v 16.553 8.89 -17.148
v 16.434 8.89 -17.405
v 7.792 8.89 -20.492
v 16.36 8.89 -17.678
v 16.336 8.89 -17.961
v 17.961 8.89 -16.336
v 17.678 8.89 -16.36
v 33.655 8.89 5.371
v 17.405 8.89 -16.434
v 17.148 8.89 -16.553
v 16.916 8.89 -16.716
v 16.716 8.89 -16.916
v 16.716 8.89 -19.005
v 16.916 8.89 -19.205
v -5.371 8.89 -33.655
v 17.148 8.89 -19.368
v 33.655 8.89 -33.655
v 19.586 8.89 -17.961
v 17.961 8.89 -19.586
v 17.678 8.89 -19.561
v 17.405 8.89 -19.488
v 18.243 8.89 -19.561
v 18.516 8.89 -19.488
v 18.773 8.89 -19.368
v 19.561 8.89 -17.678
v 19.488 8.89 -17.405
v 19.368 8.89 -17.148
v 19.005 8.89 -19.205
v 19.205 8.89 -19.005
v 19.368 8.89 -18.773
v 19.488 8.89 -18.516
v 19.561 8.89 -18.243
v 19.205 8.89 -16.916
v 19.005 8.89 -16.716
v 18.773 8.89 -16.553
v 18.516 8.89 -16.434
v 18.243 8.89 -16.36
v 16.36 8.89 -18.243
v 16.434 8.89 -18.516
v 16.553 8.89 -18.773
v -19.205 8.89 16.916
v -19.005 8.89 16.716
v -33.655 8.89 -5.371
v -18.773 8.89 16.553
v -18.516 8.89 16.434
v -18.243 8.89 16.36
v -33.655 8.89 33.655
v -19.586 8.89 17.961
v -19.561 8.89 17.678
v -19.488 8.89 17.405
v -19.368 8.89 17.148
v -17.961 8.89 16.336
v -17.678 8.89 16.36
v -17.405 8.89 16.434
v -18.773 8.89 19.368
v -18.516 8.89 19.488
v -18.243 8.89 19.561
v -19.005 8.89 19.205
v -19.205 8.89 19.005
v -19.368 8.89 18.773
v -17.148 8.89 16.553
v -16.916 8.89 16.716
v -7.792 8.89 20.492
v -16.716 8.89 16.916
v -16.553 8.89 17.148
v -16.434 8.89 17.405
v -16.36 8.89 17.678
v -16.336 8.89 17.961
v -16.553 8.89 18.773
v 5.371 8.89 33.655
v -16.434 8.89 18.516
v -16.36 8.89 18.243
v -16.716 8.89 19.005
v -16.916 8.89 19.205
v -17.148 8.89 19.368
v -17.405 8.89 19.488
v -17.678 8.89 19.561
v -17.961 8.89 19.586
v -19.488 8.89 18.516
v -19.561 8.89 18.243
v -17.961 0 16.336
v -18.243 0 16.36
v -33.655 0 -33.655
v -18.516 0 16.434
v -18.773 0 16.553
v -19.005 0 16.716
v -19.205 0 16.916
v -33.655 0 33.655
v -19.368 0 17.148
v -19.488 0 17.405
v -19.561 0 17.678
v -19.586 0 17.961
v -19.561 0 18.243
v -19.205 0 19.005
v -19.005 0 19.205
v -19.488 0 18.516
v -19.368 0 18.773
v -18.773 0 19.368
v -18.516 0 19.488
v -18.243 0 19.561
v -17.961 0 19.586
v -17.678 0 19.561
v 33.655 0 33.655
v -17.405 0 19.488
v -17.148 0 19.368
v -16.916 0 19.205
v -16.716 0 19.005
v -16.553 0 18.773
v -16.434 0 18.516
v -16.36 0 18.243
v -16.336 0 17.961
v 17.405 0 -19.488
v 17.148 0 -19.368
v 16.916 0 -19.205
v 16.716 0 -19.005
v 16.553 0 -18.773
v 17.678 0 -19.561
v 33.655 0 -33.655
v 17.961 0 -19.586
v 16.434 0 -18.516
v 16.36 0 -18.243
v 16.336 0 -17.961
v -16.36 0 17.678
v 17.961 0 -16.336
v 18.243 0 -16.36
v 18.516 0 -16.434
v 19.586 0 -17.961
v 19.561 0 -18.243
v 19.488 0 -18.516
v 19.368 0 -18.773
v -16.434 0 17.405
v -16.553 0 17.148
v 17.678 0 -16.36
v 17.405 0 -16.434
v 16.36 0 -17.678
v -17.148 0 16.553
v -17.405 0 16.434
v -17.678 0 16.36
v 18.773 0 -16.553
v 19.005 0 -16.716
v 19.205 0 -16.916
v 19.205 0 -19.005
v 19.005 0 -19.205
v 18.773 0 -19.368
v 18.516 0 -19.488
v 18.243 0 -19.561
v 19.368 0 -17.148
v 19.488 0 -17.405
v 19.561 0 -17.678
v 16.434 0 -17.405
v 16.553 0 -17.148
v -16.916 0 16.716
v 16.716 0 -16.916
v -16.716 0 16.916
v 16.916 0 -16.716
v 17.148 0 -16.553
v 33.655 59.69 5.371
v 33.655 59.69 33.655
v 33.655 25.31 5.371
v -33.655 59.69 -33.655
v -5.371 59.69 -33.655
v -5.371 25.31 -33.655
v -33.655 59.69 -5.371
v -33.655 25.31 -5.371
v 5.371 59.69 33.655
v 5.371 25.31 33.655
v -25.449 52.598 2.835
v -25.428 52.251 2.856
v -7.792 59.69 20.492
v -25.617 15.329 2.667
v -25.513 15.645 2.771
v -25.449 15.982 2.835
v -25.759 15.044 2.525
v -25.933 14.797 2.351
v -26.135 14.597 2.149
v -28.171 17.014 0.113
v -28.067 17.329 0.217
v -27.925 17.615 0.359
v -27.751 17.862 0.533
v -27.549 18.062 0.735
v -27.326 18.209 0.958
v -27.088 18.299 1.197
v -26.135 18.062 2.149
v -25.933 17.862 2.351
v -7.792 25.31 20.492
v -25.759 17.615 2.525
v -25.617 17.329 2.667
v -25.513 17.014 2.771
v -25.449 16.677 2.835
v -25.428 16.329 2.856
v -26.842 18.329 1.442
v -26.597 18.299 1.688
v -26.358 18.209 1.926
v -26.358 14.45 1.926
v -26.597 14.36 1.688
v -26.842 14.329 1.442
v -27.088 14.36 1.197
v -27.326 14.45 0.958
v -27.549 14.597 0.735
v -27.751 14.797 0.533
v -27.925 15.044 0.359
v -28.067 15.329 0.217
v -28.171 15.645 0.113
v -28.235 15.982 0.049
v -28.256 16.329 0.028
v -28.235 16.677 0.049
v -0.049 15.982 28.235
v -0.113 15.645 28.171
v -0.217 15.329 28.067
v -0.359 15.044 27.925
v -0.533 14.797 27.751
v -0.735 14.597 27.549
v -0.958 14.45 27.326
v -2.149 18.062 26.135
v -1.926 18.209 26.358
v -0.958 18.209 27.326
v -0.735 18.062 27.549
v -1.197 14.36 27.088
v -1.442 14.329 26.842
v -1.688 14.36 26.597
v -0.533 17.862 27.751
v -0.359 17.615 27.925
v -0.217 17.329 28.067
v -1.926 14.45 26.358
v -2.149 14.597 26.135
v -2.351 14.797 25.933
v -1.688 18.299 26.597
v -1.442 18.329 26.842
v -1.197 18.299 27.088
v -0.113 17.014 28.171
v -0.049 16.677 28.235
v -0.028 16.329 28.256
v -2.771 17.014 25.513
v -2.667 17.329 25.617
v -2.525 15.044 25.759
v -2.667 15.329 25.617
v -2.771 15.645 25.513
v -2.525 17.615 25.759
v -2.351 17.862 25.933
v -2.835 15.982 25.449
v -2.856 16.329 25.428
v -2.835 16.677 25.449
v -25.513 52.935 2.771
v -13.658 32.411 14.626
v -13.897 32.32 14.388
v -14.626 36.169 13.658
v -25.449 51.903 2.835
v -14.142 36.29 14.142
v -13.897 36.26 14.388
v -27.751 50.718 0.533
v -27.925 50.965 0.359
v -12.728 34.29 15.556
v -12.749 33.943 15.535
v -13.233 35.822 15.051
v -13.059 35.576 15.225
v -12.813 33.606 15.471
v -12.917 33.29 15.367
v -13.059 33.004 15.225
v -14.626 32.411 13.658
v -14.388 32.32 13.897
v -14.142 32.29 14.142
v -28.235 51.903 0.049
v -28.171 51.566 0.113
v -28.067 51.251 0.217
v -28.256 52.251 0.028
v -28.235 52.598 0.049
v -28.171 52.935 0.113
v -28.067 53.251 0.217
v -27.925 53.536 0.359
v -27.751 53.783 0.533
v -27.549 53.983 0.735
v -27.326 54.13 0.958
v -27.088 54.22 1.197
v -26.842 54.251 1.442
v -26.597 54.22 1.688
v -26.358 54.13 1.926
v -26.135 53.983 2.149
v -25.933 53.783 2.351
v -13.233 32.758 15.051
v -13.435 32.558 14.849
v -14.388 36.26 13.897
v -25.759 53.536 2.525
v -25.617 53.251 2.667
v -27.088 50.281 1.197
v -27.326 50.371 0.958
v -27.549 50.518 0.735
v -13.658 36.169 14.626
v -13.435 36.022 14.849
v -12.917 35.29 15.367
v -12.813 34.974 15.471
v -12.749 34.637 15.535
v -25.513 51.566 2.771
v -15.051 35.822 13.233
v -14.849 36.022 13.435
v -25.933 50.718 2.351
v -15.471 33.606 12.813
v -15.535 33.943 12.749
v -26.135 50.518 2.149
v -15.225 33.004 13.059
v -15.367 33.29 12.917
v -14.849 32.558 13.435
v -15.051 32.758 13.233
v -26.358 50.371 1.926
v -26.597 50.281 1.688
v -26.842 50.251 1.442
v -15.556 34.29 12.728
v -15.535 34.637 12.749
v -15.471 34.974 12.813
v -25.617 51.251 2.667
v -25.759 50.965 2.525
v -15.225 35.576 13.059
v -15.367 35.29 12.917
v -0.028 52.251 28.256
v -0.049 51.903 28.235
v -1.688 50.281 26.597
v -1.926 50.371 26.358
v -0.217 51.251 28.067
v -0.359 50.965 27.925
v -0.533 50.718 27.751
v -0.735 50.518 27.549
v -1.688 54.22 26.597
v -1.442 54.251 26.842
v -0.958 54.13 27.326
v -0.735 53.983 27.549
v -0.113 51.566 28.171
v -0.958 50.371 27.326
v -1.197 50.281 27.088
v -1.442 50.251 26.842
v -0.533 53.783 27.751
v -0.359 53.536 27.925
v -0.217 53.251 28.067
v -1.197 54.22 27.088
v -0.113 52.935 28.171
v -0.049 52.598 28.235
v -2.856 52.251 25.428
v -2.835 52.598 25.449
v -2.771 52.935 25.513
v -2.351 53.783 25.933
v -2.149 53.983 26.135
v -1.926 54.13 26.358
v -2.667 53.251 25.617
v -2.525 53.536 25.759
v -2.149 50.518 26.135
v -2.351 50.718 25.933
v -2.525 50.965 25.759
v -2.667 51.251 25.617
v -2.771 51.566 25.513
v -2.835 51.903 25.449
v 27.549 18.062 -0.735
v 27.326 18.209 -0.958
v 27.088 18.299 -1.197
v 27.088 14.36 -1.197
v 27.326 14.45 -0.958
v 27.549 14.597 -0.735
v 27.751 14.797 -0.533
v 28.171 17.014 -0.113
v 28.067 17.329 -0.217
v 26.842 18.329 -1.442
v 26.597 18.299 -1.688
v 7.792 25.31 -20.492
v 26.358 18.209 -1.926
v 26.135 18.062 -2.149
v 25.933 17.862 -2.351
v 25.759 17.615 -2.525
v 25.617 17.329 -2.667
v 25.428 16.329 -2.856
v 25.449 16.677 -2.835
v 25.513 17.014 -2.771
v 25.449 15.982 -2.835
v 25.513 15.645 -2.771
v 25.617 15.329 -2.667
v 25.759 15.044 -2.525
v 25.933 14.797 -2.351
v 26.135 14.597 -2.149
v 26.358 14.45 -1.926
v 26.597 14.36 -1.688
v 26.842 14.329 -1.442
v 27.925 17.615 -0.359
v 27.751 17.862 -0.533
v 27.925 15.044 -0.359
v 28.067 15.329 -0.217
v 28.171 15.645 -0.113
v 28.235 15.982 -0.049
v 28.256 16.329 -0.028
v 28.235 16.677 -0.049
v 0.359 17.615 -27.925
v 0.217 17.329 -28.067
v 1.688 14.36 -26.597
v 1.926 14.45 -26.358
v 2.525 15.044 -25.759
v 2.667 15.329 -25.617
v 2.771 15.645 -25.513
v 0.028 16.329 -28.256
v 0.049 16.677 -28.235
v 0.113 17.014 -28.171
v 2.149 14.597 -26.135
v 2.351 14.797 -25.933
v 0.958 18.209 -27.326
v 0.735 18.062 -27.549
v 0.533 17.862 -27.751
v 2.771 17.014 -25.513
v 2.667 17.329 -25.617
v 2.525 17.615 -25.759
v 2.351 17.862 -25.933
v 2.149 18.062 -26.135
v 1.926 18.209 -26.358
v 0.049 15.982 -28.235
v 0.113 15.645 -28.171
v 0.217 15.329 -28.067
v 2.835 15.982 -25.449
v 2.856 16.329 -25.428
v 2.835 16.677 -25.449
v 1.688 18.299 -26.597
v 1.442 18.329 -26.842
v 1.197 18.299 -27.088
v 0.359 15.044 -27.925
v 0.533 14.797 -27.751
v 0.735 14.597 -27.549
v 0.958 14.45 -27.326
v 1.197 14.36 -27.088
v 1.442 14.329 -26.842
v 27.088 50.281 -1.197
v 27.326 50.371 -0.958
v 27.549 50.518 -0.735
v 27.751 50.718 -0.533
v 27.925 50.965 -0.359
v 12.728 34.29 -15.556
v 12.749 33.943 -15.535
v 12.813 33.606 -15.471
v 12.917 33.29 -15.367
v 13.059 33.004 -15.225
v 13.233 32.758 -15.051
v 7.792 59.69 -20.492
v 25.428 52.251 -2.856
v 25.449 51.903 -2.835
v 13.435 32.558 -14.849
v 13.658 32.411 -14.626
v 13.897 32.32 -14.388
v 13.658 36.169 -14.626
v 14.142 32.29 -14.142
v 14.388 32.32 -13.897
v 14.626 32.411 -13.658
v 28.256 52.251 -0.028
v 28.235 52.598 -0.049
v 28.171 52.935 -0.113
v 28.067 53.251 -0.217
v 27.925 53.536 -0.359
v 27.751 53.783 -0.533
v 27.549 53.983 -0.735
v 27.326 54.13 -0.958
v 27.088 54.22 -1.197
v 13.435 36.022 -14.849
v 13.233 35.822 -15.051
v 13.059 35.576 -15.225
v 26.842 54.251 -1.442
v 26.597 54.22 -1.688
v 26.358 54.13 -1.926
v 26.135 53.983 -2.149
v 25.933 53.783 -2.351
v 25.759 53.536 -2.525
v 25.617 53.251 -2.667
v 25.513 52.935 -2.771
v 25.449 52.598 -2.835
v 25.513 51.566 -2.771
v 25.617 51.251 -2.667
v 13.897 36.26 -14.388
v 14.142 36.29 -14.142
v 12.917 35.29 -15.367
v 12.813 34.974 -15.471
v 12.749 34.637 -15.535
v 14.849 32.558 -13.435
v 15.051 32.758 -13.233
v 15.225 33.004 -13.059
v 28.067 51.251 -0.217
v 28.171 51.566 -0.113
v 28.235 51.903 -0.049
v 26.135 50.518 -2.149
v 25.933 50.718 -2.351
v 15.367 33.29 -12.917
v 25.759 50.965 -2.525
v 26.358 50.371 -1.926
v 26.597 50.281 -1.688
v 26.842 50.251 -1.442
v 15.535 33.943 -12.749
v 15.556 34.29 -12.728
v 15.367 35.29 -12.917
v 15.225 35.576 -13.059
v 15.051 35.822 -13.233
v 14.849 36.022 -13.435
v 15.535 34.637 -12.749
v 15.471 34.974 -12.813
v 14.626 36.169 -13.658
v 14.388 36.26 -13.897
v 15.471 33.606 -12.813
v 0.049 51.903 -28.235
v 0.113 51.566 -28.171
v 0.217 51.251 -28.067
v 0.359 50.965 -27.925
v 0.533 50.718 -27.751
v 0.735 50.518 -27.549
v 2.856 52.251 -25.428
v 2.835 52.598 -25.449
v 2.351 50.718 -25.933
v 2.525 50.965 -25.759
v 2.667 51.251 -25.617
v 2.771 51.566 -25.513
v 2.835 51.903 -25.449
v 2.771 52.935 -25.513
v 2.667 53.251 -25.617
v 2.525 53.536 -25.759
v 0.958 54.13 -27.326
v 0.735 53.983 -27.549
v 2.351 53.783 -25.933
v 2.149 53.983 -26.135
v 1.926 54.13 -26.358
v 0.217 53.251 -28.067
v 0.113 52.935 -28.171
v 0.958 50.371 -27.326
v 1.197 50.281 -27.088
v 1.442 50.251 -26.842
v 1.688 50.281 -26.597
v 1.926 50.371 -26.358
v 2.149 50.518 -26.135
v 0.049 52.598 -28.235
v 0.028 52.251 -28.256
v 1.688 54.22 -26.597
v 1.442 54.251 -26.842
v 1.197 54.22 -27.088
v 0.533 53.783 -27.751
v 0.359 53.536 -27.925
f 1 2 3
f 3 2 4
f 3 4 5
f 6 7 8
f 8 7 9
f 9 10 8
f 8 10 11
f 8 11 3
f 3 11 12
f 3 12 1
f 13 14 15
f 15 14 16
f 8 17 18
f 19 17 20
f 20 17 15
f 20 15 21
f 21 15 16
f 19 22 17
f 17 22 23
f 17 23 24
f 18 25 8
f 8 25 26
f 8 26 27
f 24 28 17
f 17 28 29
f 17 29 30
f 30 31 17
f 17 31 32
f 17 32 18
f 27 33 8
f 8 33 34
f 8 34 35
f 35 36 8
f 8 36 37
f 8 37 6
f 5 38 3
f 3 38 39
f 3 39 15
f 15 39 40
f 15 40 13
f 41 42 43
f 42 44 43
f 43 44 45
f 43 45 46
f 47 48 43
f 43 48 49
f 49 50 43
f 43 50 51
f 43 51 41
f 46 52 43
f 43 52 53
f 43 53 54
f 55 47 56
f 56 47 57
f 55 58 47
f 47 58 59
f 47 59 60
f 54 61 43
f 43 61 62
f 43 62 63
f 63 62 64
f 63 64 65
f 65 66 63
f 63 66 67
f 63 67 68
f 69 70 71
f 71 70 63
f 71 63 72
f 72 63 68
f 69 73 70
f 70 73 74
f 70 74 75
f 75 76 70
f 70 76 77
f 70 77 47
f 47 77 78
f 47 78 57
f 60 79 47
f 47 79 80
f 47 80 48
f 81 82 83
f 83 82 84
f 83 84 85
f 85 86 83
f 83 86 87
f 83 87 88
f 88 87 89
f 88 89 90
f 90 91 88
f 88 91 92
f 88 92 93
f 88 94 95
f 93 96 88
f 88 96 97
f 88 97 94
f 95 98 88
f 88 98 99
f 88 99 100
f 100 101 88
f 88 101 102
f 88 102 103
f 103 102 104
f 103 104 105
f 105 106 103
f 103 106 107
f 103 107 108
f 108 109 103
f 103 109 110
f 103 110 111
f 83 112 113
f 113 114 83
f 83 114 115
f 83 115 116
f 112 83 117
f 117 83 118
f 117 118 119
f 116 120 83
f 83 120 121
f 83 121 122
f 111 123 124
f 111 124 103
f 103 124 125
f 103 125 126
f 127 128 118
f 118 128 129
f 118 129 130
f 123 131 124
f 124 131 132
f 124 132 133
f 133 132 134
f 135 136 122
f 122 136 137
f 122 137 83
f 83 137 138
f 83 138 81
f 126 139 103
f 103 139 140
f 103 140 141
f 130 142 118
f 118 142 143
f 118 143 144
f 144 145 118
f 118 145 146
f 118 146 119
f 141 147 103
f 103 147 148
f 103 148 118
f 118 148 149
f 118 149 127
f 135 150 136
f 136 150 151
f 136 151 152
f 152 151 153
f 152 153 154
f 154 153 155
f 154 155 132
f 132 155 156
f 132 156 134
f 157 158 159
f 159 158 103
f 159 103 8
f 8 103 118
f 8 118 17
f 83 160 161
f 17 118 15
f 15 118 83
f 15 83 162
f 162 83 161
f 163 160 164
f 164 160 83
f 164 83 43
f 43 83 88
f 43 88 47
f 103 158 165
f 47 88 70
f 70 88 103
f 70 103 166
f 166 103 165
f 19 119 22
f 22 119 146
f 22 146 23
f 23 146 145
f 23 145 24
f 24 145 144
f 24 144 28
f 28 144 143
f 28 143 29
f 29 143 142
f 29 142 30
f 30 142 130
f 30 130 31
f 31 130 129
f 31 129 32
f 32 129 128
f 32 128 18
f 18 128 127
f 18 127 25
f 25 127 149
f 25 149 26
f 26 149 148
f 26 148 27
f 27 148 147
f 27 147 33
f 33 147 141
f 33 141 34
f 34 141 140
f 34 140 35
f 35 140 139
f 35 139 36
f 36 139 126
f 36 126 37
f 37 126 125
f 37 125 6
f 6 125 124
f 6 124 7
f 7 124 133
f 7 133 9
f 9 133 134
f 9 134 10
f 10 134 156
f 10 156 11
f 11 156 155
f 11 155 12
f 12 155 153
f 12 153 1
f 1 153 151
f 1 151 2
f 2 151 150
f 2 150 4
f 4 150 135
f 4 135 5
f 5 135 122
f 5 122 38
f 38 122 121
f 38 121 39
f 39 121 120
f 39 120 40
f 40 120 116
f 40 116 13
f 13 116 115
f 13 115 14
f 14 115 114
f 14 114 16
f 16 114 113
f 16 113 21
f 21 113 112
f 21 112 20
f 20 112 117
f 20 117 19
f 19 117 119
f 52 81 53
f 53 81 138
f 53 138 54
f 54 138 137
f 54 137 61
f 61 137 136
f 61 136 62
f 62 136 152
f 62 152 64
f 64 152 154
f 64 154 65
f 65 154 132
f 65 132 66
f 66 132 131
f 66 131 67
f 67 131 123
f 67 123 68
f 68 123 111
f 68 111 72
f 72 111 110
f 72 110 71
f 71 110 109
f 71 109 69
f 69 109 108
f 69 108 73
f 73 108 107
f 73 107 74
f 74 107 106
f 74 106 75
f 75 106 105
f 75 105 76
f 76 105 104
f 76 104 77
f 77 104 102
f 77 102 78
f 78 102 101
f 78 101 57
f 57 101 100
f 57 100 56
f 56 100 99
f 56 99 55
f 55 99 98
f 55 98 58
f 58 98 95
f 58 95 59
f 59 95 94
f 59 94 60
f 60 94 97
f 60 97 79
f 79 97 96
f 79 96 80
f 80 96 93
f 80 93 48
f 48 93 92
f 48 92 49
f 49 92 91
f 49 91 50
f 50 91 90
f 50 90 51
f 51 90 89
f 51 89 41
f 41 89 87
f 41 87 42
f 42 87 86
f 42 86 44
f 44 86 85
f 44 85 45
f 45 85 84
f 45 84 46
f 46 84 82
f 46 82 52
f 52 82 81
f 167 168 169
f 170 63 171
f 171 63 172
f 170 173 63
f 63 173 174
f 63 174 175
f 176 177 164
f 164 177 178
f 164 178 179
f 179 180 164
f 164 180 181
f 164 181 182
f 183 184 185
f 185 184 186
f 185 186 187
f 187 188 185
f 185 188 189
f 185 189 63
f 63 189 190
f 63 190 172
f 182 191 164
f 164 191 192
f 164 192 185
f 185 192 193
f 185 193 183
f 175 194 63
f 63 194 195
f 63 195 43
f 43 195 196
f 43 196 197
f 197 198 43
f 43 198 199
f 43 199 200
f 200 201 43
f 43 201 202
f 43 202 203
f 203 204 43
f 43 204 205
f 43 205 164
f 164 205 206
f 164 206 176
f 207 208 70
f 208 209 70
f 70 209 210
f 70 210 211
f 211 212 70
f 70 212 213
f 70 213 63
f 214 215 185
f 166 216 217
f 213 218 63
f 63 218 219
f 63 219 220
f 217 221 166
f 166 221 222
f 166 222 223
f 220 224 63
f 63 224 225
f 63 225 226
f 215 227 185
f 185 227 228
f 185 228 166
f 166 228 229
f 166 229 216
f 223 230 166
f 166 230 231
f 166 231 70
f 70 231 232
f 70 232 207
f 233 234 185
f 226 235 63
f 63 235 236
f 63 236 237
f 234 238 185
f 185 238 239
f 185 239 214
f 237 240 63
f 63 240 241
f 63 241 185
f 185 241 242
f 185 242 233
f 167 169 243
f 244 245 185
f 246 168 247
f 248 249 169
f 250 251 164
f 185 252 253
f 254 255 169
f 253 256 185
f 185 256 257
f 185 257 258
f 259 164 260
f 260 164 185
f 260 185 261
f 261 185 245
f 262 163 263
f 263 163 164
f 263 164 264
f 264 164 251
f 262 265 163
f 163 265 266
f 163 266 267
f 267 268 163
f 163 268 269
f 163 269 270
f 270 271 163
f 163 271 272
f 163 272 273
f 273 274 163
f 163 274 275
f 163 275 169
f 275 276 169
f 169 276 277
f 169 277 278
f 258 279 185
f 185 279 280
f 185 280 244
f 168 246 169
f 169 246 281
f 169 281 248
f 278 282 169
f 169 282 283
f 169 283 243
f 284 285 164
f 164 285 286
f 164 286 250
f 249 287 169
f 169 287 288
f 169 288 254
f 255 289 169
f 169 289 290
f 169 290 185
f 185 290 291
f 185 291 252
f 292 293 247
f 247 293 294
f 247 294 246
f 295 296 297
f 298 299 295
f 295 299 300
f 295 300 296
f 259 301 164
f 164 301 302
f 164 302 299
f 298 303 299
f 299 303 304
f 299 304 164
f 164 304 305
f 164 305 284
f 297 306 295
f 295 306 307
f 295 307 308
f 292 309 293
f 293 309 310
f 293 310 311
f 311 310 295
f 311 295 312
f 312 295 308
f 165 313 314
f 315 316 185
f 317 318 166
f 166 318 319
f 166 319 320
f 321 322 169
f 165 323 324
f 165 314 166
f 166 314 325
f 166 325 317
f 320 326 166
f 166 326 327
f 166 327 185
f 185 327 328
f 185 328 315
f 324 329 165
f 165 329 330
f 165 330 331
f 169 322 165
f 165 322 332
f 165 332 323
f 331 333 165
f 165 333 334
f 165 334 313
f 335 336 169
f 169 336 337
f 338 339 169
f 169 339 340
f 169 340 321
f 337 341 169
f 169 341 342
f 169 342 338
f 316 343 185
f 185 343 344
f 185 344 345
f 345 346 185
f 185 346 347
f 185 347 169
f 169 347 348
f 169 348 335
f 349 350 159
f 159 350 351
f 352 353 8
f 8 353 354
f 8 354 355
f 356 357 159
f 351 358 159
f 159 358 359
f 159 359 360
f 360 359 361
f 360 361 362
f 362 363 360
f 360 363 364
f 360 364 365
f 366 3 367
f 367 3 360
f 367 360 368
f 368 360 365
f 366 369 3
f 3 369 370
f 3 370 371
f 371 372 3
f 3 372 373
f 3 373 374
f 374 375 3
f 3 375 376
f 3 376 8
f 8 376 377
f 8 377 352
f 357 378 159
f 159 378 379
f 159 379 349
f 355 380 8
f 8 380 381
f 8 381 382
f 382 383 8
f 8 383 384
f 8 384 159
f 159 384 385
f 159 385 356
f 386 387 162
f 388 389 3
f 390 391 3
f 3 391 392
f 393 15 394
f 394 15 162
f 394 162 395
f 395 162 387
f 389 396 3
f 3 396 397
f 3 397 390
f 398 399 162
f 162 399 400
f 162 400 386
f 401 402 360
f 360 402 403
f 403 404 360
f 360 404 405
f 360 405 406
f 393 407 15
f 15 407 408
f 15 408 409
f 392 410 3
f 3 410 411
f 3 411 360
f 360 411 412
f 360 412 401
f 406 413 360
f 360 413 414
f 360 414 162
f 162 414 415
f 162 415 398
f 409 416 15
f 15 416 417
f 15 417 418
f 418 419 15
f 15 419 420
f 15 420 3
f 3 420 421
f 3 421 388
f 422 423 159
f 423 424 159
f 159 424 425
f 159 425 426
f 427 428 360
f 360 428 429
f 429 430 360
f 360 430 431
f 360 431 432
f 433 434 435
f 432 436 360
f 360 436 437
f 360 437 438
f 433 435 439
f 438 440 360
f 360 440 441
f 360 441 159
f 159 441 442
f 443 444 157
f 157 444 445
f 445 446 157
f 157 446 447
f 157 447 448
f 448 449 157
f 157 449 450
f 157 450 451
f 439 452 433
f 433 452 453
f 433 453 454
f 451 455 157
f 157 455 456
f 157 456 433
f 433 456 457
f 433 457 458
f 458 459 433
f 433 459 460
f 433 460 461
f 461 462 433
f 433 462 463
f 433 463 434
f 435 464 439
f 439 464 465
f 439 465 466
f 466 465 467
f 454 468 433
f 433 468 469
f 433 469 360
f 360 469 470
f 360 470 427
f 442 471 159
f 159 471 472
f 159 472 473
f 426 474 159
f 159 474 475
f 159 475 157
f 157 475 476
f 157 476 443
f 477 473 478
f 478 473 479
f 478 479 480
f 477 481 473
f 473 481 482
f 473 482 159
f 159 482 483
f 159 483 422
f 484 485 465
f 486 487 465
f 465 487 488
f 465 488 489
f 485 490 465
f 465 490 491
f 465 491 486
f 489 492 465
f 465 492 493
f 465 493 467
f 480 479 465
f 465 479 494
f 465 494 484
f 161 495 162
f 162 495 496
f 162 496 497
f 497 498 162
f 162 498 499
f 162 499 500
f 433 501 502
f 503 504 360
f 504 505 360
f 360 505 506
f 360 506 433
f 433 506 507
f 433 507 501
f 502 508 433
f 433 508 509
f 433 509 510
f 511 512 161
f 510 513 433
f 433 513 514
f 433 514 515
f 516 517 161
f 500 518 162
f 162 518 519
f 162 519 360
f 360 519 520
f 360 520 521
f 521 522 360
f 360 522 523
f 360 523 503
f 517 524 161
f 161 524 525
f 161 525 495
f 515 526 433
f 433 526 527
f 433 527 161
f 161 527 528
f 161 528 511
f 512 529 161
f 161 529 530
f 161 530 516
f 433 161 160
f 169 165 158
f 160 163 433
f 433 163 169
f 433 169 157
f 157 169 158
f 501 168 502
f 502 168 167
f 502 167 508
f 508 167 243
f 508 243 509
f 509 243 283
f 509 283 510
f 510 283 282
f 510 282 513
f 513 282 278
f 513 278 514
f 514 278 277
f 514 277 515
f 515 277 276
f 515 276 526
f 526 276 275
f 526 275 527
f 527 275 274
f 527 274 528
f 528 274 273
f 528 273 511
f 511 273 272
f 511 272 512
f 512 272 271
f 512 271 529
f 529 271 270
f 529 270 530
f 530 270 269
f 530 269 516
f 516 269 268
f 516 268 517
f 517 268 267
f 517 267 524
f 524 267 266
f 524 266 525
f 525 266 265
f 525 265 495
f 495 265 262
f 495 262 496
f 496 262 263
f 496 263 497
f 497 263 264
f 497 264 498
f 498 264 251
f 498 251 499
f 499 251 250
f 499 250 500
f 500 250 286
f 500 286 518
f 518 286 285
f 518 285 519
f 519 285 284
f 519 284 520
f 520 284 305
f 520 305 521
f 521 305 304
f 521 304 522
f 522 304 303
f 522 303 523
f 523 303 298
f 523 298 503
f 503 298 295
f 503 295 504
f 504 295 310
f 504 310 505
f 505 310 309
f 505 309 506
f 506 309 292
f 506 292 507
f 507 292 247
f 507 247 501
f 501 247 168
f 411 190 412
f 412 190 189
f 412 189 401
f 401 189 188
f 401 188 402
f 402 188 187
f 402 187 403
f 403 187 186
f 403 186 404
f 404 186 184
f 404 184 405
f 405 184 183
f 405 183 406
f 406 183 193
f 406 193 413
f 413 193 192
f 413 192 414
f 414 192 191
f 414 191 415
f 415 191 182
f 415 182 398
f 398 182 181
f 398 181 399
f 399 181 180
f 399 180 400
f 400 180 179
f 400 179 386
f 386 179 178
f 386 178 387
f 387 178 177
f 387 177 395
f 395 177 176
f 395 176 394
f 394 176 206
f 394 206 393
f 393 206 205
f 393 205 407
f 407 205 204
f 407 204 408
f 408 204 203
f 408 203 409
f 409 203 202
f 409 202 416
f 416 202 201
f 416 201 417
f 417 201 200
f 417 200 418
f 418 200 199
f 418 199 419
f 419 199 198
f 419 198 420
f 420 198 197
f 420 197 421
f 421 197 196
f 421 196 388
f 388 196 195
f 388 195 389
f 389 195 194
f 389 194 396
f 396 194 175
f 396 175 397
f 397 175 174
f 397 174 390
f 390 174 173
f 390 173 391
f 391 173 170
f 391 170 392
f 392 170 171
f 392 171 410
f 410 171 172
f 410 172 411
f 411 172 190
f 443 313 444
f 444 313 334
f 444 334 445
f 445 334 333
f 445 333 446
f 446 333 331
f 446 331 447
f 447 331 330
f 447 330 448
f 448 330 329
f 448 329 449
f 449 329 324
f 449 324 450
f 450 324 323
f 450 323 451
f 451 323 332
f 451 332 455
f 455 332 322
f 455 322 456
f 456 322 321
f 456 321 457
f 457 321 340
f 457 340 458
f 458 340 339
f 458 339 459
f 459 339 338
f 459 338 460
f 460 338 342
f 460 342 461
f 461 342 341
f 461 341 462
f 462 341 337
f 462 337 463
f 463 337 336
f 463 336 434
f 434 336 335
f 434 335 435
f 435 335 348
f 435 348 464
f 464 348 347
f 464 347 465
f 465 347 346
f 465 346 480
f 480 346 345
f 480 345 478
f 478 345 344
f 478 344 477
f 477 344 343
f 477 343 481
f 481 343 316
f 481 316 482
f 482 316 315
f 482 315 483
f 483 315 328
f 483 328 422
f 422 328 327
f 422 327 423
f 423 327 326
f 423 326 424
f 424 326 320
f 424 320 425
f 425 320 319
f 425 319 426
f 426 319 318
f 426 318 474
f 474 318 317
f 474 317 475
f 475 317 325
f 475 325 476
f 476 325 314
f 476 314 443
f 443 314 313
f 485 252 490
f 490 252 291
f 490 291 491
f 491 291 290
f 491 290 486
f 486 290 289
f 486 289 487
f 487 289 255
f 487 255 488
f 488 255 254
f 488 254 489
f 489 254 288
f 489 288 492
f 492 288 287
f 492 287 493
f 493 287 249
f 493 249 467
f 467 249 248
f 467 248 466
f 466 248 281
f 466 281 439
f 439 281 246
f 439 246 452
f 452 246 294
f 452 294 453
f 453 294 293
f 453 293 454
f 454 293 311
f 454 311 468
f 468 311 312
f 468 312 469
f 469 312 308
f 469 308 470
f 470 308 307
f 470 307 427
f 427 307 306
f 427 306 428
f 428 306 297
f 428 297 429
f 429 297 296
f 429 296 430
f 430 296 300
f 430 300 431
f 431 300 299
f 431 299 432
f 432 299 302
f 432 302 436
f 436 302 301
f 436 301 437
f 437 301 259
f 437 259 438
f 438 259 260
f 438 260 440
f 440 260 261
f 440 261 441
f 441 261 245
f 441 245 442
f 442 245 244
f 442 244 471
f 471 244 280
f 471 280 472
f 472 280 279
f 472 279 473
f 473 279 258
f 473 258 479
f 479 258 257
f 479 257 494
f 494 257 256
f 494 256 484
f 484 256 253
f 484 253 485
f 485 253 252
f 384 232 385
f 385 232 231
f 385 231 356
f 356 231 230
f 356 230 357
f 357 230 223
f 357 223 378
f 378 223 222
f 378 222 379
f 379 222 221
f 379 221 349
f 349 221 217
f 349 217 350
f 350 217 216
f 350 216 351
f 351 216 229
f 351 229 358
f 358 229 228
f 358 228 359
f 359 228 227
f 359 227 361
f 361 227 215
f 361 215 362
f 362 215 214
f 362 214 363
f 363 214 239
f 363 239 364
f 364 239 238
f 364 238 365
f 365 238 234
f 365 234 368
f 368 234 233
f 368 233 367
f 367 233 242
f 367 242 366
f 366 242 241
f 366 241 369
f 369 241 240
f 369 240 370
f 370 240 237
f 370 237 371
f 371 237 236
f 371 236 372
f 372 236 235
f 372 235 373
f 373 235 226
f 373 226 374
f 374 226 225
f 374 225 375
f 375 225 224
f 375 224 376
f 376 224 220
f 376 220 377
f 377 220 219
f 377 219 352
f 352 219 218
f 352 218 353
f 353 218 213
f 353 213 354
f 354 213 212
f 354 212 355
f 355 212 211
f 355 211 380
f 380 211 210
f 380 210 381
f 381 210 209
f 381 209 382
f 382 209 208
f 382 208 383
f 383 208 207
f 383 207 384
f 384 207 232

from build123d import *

# Parameters (mm, degrees)
SKETCH1_W           = 67.31
SKETCH1_H           = 67.31
SKETCH1_R           = 1.625
BOSS_EXTRUDE1_DEPTH = 8.89
BOSS_EXTRUDE2_DEPTH = 50.8
SKETCH3_R           = 2
CUT_EXTRUDE2_DEPTH  = 127


with BuildPart() as part:
    # Sketch1 → Boss-Extrude1 (new body)
    with BuildSketch(Plane(origin=(0, 0, 0), x_dir=(1, 0, 0), z_dir=(0, 1, 0))):
        Rectangle(SKETCH1_W, SKETCH1_H)
        with Locations(Location((17.960512242, 17.960512242, 0), (0, 0, 270))):
            Circle(SKETCH1_R, mode=Mode.SUBTRACT)
        with Locations(Location((-17.960512242, -17.960512242, 0), (0, 0, 270))):
            Circle(SKETCH1_R, mode=Mode.SUBTRACT)
    extrude(amount=BOSS_EXTRUDE1_DEPTH)

    # Sketch2 → Boss-Extrude2 (add)
    with BuildSketch(Plane(origin=(0, 8.89, 0), x_dir=(1, 0, 0), z_dir=(0, 1, 0))):
        Polygon((17.943087322, -33.655), (-33.655, 17.943087322), (-33.655, 5.370728753), (5.370728753, -33.655), align=None)
        Polygon((33.655, -17.943087322), (-17.943087322, 33.655), (-33.655, 33.655), (-33.655, 17.943087322), (17.943087322, -33.655), (33.655, -33.655), align=None)
        Polygon((-5.370728753, 33.655), (-17.943087322, 33.655), (33.655, -17.943087322), (33.655, -5.370728753), align=None)
    extrude(amount=BOSS_EXTRUDE2_DEPTH)

    # Sketch3 → Cut-Extrude2 (cut)
    with BuildSketch(Plane(origin=(-14.142135624, 0, 14.142135624), x_dir=(0.7071067811865464, 0, 0.7071067811865488), z_dir=(-0.7071067811865488, 0, 0.7071067811865464))):
        with Locations((-17.960512242, 52.250512242)):
            Circle(SKETCH3_R)
        with Locations((17.960512242, 16.329487758)):
            Circle(SKETCH3_R)
        with Locations((0, 34.29)):
            Circle(SKETCH3_R)
        with Locations((17.960512242, 52.250512242)):
            Circle(SKETCH3_R)
        with Locations((-17.960512242, 16.329487758)):
            Circle(SKETCH3_R)
    extrude(amount=-CUT_EXTRUDE2_DEPTH, mode=Mode.SUBTRACT)


solid = part.part
